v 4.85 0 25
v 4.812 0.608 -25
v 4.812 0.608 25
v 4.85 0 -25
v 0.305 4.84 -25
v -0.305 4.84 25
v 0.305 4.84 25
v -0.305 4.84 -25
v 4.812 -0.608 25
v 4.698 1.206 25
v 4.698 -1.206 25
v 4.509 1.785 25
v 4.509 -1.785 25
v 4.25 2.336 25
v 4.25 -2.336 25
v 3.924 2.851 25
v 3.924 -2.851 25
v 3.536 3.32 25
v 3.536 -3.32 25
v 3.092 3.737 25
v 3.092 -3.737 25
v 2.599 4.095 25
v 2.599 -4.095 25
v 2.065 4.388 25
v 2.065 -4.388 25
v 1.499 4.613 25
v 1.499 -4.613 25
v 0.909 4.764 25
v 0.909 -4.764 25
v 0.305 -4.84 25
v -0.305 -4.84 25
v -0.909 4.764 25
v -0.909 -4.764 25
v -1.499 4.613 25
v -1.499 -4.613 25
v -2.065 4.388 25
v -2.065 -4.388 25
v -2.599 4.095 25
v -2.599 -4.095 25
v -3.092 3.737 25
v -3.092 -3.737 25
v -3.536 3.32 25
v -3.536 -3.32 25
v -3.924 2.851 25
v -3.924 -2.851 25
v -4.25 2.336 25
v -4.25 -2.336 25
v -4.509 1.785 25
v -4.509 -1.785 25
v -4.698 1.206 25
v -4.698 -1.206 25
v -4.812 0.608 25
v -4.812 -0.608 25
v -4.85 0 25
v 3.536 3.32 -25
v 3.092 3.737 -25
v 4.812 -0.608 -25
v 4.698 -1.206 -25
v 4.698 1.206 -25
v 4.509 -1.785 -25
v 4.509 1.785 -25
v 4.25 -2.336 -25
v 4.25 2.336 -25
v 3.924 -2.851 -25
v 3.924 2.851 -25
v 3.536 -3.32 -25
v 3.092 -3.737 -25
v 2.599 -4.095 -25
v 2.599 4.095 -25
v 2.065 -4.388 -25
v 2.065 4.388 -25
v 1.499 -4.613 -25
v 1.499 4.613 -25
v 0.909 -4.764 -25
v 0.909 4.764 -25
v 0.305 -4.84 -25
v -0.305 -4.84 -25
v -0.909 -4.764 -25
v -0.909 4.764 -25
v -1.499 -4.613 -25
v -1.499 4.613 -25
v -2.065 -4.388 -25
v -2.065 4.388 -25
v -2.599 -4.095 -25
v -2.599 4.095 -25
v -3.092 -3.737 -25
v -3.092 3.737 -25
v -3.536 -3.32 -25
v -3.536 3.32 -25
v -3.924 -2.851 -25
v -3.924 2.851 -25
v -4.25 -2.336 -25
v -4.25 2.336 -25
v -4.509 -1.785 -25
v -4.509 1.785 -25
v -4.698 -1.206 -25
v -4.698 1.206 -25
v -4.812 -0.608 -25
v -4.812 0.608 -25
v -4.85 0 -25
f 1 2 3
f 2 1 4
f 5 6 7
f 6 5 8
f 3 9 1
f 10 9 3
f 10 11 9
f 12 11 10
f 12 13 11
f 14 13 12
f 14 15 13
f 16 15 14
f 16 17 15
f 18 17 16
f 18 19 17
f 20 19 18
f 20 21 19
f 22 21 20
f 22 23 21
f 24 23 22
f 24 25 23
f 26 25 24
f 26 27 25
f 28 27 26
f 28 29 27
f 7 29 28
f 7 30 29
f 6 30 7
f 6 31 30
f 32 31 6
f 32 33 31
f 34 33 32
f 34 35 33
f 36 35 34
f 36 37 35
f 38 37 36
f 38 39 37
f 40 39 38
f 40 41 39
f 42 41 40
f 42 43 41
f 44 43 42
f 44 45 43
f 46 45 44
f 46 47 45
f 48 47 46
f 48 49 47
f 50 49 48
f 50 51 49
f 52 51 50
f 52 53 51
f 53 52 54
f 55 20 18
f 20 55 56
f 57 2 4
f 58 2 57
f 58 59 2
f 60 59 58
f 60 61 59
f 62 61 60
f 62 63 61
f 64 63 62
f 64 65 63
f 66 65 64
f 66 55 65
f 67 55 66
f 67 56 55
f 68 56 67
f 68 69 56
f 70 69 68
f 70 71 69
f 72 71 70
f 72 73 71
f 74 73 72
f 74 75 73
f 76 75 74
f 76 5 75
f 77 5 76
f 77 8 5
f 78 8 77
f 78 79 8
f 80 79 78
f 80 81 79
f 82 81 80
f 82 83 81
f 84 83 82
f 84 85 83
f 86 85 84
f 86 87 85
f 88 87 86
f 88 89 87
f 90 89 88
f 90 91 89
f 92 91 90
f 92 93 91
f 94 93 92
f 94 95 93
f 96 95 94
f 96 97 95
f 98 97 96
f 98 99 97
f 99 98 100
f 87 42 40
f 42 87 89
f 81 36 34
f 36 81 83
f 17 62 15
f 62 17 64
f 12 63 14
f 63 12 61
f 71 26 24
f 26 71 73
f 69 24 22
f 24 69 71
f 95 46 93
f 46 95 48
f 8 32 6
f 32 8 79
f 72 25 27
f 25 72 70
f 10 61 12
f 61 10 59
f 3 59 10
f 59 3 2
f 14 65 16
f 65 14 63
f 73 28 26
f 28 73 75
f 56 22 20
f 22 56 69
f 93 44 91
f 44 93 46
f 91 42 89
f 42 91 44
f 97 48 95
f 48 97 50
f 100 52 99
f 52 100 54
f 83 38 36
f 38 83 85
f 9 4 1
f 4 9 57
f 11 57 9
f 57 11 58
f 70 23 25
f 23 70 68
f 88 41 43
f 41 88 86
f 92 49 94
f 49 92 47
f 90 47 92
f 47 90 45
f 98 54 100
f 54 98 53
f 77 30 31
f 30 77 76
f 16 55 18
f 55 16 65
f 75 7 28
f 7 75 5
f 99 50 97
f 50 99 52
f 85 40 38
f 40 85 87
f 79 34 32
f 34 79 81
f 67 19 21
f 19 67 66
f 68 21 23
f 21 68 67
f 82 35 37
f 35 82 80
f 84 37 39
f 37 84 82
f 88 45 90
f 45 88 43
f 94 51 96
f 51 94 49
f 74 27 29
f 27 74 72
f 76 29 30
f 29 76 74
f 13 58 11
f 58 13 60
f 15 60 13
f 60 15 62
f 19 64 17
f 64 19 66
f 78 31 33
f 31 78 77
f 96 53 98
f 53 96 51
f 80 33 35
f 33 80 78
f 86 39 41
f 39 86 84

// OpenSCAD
$fn = 50;


difference() {
	union() {
		translate(v = [0, 0, -25.0000000000]) {
			cylinder(h = 50, r = 4.8500000000);
		}
	}
	union() {
		translate(v = [0, 0, -100.0000000000]) {
			cylinder(h = 200, r = 0);
		}
	}
}
